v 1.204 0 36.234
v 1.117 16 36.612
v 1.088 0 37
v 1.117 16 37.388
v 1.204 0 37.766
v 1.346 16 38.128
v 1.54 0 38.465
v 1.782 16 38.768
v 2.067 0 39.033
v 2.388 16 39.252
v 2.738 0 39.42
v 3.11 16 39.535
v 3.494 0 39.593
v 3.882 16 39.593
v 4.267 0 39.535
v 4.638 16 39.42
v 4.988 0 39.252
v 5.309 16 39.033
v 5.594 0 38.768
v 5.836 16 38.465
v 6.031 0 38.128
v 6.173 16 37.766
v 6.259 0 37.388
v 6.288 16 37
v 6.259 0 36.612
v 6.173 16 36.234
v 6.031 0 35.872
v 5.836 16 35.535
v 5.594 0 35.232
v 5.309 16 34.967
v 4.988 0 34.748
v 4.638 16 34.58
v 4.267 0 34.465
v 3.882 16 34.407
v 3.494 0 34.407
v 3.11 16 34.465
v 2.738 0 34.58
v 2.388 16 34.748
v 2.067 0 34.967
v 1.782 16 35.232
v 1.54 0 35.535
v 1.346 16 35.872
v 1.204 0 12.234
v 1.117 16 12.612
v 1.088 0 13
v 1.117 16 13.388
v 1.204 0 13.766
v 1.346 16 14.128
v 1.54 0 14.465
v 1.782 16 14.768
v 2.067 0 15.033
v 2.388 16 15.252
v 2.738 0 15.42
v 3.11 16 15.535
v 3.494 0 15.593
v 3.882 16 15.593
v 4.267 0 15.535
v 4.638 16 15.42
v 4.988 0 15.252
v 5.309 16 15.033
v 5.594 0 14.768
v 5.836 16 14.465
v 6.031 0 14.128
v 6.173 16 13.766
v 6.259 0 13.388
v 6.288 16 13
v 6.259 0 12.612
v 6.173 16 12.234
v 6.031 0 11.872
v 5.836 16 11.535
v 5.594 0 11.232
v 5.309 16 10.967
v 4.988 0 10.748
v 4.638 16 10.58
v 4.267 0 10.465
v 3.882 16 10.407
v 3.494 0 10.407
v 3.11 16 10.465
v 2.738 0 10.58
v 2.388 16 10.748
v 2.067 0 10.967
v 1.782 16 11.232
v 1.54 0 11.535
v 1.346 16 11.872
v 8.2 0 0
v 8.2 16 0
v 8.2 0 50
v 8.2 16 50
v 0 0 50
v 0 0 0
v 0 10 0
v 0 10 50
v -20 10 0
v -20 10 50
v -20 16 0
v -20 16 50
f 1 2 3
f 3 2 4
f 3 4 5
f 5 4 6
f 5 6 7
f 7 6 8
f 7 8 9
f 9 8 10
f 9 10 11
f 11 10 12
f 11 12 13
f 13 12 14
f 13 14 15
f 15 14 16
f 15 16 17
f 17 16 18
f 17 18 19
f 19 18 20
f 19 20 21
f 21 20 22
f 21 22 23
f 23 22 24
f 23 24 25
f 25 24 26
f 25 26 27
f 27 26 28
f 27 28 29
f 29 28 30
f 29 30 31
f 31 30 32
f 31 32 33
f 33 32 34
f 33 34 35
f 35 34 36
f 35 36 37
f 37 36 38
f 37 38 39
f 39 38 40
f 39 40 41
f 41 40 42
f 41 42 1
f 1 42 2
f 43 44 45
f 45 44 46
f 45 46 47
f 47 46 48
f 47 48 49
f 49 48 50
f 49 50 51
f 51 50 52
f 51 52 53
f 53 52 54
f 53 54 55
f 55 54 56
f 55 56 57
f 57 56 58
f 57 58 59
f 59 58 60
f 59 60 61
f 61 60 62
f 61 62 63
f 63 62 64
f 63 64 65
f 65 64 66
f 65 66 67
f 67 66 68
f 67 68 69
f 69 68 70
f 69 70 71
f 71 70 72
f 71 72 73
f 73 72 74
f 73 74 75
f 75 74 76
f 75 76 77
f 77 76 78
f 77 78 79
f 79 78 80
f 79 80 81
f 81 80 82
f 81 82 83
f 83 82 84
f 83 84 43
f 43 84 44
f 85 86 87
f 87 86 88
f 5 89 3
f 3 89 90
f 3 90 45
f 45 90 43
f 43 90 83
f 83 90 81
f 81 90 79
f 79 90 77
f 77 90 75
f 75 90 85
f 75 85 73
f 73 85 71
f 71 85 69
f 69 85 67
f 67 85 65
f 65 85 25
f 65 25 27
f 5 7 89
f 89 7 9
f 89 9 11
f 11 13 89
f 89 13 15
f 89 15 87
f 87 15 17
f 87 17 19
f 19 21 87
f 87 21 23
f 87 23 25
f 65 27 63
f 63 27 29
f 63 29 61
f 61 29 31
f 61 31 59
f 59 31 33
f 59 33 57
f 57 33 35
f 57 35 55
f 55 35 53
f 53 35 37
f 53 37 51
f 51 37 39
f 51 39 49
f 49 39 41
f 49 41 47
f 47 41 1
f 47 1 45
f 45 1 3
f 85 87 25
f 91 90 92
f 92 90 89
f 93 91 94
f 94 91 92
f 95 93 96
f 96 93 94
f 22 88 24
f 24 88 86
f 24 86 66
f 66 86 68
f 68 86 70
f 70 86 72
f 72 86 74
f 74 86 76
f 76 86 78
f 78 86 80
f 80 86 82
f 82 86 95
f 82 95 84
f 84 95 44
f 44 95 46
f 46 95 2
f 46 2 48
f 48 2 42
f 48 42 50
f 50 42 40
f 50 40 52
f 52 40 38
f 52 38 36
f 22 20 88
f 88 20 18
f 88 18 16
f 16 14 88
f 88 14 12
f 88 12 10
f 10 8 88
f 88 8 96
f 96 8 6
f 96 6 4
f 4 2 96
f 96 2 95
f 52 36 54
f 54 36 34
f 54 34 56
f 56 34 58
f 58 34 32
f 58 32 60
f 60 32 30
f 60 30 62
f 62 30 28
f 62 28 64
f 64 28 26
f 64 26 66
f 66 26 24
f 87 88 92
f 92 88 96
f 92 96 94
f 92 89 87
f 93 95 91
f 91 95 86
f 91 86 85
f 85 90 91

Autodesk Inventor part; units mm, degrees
ref_plane "YZ Plane" through (0, 0, 0) normal (1, 0, 0) x (0, 1, 0)
ref_plane "XZ Plane" through (0, 0, 0) normal (0, 1, 0) x (-1, 0, 0)
ref_plane "XY Plane" through (0, 0, 0) normal (0, 0, 1) x (1, 0, 0)
sketch "Эскиз1" plane through (0, 0, 0) normal (0, 0, 1) x (1, 0, 0)
  line L0 (0, 0) -> (-20, 0) construction
  line L1 (-20, 0) -> (-20, 10) construction
  line L2 (-20, 10) -> (0, 10) construction
  line L3 (0, 10) -> (0, 0) construction
  line L4 (-20, 0) -> (8.2, 0) construction
  line L5 (8.2, 0) -> (8.2, 16)
  line L6 (8.2, 16) -> (-20, 16)
  line L7 (-20, 16) -> (-20, 0) construction
  line L8 (-20, 16) -> (-20, 10)
  line L9 (-20, 10) -> (0, 10)
  line L10 (0, 10) -> (0, 0)
  line L11 (0, 0) -> (8.2, 0)
  point P0 (-10, 10)
  dimension "d0" = 20
  dimension "d1" = 10
  dimension "d2" = 6
  dimension "d3" = 8.2
extrude "Выдавливание1" add sketch "Эскиз1" along normal blind 50
sketch "Эскиз3" plane through (-20, 16, 0) normal (0, 1, 0) x (1, 0, 0)
  circle A0 centre (23.6882, -13) radius 6 construction
  circle A1 centre (23.6882, -13) radius 2.6
  line L0 (28.2, 0) -> (0, 0) projected
  circle A2 centre (23.6882, -37) radius 2.6
  line L1 (28.2, -50) -> (0, -50) projected
  circle A3 centre (23.6882, -13) radius 9 construction
  circle A4 centre (23.6882, -37) radius 9 construction
  circle A5 centre (23.6882, 52.7109) radius 2.5 construction
  circle A6 centre (23.6882, 52.7109) radius 6
  line L2 (17.6882, 52.7109) -> (17.6882, -70.8519) construction
  line L3 (23.6882, -13) -> (23.6882, -47.2953) construction
  line L4 (20, 0) -> (20, -50) projected
  dimension "d26" = 12
  dimension "d16" = 12
  dimension "d17" = 5.2
  dimension "d20" = 5.2
  dimension "d22" = 24
  dimension "d23" = 18
  dimension "d24" = 18
  dimension "d25" = 13
extrude "Выдавливание4" cut sketch "Эскиз3" against normal blind 20 contours A1 | A2
equation "\"Радиус_гибки\" = Толщина"
equation "\"Ширина_просечки\" = Толщина"
equation "\"Глубина_просечки\" = 0.5 * Толщина"
equation "\"Размер_просечки\" = 4 * Толщина"
equation "\"Мин_остаток\" = 2 * Толщина"
equation "\"Радиус_перехода\" = Радиус_гибки"
equation "\"Радиус_Якоби\" = Радиус_гибки"
equation "\"Размер_зазора\" = Толщина"
equation "\"Толщина\" = 3.048"
properties part number "креп_центр_м2" material "Полипропилен"
